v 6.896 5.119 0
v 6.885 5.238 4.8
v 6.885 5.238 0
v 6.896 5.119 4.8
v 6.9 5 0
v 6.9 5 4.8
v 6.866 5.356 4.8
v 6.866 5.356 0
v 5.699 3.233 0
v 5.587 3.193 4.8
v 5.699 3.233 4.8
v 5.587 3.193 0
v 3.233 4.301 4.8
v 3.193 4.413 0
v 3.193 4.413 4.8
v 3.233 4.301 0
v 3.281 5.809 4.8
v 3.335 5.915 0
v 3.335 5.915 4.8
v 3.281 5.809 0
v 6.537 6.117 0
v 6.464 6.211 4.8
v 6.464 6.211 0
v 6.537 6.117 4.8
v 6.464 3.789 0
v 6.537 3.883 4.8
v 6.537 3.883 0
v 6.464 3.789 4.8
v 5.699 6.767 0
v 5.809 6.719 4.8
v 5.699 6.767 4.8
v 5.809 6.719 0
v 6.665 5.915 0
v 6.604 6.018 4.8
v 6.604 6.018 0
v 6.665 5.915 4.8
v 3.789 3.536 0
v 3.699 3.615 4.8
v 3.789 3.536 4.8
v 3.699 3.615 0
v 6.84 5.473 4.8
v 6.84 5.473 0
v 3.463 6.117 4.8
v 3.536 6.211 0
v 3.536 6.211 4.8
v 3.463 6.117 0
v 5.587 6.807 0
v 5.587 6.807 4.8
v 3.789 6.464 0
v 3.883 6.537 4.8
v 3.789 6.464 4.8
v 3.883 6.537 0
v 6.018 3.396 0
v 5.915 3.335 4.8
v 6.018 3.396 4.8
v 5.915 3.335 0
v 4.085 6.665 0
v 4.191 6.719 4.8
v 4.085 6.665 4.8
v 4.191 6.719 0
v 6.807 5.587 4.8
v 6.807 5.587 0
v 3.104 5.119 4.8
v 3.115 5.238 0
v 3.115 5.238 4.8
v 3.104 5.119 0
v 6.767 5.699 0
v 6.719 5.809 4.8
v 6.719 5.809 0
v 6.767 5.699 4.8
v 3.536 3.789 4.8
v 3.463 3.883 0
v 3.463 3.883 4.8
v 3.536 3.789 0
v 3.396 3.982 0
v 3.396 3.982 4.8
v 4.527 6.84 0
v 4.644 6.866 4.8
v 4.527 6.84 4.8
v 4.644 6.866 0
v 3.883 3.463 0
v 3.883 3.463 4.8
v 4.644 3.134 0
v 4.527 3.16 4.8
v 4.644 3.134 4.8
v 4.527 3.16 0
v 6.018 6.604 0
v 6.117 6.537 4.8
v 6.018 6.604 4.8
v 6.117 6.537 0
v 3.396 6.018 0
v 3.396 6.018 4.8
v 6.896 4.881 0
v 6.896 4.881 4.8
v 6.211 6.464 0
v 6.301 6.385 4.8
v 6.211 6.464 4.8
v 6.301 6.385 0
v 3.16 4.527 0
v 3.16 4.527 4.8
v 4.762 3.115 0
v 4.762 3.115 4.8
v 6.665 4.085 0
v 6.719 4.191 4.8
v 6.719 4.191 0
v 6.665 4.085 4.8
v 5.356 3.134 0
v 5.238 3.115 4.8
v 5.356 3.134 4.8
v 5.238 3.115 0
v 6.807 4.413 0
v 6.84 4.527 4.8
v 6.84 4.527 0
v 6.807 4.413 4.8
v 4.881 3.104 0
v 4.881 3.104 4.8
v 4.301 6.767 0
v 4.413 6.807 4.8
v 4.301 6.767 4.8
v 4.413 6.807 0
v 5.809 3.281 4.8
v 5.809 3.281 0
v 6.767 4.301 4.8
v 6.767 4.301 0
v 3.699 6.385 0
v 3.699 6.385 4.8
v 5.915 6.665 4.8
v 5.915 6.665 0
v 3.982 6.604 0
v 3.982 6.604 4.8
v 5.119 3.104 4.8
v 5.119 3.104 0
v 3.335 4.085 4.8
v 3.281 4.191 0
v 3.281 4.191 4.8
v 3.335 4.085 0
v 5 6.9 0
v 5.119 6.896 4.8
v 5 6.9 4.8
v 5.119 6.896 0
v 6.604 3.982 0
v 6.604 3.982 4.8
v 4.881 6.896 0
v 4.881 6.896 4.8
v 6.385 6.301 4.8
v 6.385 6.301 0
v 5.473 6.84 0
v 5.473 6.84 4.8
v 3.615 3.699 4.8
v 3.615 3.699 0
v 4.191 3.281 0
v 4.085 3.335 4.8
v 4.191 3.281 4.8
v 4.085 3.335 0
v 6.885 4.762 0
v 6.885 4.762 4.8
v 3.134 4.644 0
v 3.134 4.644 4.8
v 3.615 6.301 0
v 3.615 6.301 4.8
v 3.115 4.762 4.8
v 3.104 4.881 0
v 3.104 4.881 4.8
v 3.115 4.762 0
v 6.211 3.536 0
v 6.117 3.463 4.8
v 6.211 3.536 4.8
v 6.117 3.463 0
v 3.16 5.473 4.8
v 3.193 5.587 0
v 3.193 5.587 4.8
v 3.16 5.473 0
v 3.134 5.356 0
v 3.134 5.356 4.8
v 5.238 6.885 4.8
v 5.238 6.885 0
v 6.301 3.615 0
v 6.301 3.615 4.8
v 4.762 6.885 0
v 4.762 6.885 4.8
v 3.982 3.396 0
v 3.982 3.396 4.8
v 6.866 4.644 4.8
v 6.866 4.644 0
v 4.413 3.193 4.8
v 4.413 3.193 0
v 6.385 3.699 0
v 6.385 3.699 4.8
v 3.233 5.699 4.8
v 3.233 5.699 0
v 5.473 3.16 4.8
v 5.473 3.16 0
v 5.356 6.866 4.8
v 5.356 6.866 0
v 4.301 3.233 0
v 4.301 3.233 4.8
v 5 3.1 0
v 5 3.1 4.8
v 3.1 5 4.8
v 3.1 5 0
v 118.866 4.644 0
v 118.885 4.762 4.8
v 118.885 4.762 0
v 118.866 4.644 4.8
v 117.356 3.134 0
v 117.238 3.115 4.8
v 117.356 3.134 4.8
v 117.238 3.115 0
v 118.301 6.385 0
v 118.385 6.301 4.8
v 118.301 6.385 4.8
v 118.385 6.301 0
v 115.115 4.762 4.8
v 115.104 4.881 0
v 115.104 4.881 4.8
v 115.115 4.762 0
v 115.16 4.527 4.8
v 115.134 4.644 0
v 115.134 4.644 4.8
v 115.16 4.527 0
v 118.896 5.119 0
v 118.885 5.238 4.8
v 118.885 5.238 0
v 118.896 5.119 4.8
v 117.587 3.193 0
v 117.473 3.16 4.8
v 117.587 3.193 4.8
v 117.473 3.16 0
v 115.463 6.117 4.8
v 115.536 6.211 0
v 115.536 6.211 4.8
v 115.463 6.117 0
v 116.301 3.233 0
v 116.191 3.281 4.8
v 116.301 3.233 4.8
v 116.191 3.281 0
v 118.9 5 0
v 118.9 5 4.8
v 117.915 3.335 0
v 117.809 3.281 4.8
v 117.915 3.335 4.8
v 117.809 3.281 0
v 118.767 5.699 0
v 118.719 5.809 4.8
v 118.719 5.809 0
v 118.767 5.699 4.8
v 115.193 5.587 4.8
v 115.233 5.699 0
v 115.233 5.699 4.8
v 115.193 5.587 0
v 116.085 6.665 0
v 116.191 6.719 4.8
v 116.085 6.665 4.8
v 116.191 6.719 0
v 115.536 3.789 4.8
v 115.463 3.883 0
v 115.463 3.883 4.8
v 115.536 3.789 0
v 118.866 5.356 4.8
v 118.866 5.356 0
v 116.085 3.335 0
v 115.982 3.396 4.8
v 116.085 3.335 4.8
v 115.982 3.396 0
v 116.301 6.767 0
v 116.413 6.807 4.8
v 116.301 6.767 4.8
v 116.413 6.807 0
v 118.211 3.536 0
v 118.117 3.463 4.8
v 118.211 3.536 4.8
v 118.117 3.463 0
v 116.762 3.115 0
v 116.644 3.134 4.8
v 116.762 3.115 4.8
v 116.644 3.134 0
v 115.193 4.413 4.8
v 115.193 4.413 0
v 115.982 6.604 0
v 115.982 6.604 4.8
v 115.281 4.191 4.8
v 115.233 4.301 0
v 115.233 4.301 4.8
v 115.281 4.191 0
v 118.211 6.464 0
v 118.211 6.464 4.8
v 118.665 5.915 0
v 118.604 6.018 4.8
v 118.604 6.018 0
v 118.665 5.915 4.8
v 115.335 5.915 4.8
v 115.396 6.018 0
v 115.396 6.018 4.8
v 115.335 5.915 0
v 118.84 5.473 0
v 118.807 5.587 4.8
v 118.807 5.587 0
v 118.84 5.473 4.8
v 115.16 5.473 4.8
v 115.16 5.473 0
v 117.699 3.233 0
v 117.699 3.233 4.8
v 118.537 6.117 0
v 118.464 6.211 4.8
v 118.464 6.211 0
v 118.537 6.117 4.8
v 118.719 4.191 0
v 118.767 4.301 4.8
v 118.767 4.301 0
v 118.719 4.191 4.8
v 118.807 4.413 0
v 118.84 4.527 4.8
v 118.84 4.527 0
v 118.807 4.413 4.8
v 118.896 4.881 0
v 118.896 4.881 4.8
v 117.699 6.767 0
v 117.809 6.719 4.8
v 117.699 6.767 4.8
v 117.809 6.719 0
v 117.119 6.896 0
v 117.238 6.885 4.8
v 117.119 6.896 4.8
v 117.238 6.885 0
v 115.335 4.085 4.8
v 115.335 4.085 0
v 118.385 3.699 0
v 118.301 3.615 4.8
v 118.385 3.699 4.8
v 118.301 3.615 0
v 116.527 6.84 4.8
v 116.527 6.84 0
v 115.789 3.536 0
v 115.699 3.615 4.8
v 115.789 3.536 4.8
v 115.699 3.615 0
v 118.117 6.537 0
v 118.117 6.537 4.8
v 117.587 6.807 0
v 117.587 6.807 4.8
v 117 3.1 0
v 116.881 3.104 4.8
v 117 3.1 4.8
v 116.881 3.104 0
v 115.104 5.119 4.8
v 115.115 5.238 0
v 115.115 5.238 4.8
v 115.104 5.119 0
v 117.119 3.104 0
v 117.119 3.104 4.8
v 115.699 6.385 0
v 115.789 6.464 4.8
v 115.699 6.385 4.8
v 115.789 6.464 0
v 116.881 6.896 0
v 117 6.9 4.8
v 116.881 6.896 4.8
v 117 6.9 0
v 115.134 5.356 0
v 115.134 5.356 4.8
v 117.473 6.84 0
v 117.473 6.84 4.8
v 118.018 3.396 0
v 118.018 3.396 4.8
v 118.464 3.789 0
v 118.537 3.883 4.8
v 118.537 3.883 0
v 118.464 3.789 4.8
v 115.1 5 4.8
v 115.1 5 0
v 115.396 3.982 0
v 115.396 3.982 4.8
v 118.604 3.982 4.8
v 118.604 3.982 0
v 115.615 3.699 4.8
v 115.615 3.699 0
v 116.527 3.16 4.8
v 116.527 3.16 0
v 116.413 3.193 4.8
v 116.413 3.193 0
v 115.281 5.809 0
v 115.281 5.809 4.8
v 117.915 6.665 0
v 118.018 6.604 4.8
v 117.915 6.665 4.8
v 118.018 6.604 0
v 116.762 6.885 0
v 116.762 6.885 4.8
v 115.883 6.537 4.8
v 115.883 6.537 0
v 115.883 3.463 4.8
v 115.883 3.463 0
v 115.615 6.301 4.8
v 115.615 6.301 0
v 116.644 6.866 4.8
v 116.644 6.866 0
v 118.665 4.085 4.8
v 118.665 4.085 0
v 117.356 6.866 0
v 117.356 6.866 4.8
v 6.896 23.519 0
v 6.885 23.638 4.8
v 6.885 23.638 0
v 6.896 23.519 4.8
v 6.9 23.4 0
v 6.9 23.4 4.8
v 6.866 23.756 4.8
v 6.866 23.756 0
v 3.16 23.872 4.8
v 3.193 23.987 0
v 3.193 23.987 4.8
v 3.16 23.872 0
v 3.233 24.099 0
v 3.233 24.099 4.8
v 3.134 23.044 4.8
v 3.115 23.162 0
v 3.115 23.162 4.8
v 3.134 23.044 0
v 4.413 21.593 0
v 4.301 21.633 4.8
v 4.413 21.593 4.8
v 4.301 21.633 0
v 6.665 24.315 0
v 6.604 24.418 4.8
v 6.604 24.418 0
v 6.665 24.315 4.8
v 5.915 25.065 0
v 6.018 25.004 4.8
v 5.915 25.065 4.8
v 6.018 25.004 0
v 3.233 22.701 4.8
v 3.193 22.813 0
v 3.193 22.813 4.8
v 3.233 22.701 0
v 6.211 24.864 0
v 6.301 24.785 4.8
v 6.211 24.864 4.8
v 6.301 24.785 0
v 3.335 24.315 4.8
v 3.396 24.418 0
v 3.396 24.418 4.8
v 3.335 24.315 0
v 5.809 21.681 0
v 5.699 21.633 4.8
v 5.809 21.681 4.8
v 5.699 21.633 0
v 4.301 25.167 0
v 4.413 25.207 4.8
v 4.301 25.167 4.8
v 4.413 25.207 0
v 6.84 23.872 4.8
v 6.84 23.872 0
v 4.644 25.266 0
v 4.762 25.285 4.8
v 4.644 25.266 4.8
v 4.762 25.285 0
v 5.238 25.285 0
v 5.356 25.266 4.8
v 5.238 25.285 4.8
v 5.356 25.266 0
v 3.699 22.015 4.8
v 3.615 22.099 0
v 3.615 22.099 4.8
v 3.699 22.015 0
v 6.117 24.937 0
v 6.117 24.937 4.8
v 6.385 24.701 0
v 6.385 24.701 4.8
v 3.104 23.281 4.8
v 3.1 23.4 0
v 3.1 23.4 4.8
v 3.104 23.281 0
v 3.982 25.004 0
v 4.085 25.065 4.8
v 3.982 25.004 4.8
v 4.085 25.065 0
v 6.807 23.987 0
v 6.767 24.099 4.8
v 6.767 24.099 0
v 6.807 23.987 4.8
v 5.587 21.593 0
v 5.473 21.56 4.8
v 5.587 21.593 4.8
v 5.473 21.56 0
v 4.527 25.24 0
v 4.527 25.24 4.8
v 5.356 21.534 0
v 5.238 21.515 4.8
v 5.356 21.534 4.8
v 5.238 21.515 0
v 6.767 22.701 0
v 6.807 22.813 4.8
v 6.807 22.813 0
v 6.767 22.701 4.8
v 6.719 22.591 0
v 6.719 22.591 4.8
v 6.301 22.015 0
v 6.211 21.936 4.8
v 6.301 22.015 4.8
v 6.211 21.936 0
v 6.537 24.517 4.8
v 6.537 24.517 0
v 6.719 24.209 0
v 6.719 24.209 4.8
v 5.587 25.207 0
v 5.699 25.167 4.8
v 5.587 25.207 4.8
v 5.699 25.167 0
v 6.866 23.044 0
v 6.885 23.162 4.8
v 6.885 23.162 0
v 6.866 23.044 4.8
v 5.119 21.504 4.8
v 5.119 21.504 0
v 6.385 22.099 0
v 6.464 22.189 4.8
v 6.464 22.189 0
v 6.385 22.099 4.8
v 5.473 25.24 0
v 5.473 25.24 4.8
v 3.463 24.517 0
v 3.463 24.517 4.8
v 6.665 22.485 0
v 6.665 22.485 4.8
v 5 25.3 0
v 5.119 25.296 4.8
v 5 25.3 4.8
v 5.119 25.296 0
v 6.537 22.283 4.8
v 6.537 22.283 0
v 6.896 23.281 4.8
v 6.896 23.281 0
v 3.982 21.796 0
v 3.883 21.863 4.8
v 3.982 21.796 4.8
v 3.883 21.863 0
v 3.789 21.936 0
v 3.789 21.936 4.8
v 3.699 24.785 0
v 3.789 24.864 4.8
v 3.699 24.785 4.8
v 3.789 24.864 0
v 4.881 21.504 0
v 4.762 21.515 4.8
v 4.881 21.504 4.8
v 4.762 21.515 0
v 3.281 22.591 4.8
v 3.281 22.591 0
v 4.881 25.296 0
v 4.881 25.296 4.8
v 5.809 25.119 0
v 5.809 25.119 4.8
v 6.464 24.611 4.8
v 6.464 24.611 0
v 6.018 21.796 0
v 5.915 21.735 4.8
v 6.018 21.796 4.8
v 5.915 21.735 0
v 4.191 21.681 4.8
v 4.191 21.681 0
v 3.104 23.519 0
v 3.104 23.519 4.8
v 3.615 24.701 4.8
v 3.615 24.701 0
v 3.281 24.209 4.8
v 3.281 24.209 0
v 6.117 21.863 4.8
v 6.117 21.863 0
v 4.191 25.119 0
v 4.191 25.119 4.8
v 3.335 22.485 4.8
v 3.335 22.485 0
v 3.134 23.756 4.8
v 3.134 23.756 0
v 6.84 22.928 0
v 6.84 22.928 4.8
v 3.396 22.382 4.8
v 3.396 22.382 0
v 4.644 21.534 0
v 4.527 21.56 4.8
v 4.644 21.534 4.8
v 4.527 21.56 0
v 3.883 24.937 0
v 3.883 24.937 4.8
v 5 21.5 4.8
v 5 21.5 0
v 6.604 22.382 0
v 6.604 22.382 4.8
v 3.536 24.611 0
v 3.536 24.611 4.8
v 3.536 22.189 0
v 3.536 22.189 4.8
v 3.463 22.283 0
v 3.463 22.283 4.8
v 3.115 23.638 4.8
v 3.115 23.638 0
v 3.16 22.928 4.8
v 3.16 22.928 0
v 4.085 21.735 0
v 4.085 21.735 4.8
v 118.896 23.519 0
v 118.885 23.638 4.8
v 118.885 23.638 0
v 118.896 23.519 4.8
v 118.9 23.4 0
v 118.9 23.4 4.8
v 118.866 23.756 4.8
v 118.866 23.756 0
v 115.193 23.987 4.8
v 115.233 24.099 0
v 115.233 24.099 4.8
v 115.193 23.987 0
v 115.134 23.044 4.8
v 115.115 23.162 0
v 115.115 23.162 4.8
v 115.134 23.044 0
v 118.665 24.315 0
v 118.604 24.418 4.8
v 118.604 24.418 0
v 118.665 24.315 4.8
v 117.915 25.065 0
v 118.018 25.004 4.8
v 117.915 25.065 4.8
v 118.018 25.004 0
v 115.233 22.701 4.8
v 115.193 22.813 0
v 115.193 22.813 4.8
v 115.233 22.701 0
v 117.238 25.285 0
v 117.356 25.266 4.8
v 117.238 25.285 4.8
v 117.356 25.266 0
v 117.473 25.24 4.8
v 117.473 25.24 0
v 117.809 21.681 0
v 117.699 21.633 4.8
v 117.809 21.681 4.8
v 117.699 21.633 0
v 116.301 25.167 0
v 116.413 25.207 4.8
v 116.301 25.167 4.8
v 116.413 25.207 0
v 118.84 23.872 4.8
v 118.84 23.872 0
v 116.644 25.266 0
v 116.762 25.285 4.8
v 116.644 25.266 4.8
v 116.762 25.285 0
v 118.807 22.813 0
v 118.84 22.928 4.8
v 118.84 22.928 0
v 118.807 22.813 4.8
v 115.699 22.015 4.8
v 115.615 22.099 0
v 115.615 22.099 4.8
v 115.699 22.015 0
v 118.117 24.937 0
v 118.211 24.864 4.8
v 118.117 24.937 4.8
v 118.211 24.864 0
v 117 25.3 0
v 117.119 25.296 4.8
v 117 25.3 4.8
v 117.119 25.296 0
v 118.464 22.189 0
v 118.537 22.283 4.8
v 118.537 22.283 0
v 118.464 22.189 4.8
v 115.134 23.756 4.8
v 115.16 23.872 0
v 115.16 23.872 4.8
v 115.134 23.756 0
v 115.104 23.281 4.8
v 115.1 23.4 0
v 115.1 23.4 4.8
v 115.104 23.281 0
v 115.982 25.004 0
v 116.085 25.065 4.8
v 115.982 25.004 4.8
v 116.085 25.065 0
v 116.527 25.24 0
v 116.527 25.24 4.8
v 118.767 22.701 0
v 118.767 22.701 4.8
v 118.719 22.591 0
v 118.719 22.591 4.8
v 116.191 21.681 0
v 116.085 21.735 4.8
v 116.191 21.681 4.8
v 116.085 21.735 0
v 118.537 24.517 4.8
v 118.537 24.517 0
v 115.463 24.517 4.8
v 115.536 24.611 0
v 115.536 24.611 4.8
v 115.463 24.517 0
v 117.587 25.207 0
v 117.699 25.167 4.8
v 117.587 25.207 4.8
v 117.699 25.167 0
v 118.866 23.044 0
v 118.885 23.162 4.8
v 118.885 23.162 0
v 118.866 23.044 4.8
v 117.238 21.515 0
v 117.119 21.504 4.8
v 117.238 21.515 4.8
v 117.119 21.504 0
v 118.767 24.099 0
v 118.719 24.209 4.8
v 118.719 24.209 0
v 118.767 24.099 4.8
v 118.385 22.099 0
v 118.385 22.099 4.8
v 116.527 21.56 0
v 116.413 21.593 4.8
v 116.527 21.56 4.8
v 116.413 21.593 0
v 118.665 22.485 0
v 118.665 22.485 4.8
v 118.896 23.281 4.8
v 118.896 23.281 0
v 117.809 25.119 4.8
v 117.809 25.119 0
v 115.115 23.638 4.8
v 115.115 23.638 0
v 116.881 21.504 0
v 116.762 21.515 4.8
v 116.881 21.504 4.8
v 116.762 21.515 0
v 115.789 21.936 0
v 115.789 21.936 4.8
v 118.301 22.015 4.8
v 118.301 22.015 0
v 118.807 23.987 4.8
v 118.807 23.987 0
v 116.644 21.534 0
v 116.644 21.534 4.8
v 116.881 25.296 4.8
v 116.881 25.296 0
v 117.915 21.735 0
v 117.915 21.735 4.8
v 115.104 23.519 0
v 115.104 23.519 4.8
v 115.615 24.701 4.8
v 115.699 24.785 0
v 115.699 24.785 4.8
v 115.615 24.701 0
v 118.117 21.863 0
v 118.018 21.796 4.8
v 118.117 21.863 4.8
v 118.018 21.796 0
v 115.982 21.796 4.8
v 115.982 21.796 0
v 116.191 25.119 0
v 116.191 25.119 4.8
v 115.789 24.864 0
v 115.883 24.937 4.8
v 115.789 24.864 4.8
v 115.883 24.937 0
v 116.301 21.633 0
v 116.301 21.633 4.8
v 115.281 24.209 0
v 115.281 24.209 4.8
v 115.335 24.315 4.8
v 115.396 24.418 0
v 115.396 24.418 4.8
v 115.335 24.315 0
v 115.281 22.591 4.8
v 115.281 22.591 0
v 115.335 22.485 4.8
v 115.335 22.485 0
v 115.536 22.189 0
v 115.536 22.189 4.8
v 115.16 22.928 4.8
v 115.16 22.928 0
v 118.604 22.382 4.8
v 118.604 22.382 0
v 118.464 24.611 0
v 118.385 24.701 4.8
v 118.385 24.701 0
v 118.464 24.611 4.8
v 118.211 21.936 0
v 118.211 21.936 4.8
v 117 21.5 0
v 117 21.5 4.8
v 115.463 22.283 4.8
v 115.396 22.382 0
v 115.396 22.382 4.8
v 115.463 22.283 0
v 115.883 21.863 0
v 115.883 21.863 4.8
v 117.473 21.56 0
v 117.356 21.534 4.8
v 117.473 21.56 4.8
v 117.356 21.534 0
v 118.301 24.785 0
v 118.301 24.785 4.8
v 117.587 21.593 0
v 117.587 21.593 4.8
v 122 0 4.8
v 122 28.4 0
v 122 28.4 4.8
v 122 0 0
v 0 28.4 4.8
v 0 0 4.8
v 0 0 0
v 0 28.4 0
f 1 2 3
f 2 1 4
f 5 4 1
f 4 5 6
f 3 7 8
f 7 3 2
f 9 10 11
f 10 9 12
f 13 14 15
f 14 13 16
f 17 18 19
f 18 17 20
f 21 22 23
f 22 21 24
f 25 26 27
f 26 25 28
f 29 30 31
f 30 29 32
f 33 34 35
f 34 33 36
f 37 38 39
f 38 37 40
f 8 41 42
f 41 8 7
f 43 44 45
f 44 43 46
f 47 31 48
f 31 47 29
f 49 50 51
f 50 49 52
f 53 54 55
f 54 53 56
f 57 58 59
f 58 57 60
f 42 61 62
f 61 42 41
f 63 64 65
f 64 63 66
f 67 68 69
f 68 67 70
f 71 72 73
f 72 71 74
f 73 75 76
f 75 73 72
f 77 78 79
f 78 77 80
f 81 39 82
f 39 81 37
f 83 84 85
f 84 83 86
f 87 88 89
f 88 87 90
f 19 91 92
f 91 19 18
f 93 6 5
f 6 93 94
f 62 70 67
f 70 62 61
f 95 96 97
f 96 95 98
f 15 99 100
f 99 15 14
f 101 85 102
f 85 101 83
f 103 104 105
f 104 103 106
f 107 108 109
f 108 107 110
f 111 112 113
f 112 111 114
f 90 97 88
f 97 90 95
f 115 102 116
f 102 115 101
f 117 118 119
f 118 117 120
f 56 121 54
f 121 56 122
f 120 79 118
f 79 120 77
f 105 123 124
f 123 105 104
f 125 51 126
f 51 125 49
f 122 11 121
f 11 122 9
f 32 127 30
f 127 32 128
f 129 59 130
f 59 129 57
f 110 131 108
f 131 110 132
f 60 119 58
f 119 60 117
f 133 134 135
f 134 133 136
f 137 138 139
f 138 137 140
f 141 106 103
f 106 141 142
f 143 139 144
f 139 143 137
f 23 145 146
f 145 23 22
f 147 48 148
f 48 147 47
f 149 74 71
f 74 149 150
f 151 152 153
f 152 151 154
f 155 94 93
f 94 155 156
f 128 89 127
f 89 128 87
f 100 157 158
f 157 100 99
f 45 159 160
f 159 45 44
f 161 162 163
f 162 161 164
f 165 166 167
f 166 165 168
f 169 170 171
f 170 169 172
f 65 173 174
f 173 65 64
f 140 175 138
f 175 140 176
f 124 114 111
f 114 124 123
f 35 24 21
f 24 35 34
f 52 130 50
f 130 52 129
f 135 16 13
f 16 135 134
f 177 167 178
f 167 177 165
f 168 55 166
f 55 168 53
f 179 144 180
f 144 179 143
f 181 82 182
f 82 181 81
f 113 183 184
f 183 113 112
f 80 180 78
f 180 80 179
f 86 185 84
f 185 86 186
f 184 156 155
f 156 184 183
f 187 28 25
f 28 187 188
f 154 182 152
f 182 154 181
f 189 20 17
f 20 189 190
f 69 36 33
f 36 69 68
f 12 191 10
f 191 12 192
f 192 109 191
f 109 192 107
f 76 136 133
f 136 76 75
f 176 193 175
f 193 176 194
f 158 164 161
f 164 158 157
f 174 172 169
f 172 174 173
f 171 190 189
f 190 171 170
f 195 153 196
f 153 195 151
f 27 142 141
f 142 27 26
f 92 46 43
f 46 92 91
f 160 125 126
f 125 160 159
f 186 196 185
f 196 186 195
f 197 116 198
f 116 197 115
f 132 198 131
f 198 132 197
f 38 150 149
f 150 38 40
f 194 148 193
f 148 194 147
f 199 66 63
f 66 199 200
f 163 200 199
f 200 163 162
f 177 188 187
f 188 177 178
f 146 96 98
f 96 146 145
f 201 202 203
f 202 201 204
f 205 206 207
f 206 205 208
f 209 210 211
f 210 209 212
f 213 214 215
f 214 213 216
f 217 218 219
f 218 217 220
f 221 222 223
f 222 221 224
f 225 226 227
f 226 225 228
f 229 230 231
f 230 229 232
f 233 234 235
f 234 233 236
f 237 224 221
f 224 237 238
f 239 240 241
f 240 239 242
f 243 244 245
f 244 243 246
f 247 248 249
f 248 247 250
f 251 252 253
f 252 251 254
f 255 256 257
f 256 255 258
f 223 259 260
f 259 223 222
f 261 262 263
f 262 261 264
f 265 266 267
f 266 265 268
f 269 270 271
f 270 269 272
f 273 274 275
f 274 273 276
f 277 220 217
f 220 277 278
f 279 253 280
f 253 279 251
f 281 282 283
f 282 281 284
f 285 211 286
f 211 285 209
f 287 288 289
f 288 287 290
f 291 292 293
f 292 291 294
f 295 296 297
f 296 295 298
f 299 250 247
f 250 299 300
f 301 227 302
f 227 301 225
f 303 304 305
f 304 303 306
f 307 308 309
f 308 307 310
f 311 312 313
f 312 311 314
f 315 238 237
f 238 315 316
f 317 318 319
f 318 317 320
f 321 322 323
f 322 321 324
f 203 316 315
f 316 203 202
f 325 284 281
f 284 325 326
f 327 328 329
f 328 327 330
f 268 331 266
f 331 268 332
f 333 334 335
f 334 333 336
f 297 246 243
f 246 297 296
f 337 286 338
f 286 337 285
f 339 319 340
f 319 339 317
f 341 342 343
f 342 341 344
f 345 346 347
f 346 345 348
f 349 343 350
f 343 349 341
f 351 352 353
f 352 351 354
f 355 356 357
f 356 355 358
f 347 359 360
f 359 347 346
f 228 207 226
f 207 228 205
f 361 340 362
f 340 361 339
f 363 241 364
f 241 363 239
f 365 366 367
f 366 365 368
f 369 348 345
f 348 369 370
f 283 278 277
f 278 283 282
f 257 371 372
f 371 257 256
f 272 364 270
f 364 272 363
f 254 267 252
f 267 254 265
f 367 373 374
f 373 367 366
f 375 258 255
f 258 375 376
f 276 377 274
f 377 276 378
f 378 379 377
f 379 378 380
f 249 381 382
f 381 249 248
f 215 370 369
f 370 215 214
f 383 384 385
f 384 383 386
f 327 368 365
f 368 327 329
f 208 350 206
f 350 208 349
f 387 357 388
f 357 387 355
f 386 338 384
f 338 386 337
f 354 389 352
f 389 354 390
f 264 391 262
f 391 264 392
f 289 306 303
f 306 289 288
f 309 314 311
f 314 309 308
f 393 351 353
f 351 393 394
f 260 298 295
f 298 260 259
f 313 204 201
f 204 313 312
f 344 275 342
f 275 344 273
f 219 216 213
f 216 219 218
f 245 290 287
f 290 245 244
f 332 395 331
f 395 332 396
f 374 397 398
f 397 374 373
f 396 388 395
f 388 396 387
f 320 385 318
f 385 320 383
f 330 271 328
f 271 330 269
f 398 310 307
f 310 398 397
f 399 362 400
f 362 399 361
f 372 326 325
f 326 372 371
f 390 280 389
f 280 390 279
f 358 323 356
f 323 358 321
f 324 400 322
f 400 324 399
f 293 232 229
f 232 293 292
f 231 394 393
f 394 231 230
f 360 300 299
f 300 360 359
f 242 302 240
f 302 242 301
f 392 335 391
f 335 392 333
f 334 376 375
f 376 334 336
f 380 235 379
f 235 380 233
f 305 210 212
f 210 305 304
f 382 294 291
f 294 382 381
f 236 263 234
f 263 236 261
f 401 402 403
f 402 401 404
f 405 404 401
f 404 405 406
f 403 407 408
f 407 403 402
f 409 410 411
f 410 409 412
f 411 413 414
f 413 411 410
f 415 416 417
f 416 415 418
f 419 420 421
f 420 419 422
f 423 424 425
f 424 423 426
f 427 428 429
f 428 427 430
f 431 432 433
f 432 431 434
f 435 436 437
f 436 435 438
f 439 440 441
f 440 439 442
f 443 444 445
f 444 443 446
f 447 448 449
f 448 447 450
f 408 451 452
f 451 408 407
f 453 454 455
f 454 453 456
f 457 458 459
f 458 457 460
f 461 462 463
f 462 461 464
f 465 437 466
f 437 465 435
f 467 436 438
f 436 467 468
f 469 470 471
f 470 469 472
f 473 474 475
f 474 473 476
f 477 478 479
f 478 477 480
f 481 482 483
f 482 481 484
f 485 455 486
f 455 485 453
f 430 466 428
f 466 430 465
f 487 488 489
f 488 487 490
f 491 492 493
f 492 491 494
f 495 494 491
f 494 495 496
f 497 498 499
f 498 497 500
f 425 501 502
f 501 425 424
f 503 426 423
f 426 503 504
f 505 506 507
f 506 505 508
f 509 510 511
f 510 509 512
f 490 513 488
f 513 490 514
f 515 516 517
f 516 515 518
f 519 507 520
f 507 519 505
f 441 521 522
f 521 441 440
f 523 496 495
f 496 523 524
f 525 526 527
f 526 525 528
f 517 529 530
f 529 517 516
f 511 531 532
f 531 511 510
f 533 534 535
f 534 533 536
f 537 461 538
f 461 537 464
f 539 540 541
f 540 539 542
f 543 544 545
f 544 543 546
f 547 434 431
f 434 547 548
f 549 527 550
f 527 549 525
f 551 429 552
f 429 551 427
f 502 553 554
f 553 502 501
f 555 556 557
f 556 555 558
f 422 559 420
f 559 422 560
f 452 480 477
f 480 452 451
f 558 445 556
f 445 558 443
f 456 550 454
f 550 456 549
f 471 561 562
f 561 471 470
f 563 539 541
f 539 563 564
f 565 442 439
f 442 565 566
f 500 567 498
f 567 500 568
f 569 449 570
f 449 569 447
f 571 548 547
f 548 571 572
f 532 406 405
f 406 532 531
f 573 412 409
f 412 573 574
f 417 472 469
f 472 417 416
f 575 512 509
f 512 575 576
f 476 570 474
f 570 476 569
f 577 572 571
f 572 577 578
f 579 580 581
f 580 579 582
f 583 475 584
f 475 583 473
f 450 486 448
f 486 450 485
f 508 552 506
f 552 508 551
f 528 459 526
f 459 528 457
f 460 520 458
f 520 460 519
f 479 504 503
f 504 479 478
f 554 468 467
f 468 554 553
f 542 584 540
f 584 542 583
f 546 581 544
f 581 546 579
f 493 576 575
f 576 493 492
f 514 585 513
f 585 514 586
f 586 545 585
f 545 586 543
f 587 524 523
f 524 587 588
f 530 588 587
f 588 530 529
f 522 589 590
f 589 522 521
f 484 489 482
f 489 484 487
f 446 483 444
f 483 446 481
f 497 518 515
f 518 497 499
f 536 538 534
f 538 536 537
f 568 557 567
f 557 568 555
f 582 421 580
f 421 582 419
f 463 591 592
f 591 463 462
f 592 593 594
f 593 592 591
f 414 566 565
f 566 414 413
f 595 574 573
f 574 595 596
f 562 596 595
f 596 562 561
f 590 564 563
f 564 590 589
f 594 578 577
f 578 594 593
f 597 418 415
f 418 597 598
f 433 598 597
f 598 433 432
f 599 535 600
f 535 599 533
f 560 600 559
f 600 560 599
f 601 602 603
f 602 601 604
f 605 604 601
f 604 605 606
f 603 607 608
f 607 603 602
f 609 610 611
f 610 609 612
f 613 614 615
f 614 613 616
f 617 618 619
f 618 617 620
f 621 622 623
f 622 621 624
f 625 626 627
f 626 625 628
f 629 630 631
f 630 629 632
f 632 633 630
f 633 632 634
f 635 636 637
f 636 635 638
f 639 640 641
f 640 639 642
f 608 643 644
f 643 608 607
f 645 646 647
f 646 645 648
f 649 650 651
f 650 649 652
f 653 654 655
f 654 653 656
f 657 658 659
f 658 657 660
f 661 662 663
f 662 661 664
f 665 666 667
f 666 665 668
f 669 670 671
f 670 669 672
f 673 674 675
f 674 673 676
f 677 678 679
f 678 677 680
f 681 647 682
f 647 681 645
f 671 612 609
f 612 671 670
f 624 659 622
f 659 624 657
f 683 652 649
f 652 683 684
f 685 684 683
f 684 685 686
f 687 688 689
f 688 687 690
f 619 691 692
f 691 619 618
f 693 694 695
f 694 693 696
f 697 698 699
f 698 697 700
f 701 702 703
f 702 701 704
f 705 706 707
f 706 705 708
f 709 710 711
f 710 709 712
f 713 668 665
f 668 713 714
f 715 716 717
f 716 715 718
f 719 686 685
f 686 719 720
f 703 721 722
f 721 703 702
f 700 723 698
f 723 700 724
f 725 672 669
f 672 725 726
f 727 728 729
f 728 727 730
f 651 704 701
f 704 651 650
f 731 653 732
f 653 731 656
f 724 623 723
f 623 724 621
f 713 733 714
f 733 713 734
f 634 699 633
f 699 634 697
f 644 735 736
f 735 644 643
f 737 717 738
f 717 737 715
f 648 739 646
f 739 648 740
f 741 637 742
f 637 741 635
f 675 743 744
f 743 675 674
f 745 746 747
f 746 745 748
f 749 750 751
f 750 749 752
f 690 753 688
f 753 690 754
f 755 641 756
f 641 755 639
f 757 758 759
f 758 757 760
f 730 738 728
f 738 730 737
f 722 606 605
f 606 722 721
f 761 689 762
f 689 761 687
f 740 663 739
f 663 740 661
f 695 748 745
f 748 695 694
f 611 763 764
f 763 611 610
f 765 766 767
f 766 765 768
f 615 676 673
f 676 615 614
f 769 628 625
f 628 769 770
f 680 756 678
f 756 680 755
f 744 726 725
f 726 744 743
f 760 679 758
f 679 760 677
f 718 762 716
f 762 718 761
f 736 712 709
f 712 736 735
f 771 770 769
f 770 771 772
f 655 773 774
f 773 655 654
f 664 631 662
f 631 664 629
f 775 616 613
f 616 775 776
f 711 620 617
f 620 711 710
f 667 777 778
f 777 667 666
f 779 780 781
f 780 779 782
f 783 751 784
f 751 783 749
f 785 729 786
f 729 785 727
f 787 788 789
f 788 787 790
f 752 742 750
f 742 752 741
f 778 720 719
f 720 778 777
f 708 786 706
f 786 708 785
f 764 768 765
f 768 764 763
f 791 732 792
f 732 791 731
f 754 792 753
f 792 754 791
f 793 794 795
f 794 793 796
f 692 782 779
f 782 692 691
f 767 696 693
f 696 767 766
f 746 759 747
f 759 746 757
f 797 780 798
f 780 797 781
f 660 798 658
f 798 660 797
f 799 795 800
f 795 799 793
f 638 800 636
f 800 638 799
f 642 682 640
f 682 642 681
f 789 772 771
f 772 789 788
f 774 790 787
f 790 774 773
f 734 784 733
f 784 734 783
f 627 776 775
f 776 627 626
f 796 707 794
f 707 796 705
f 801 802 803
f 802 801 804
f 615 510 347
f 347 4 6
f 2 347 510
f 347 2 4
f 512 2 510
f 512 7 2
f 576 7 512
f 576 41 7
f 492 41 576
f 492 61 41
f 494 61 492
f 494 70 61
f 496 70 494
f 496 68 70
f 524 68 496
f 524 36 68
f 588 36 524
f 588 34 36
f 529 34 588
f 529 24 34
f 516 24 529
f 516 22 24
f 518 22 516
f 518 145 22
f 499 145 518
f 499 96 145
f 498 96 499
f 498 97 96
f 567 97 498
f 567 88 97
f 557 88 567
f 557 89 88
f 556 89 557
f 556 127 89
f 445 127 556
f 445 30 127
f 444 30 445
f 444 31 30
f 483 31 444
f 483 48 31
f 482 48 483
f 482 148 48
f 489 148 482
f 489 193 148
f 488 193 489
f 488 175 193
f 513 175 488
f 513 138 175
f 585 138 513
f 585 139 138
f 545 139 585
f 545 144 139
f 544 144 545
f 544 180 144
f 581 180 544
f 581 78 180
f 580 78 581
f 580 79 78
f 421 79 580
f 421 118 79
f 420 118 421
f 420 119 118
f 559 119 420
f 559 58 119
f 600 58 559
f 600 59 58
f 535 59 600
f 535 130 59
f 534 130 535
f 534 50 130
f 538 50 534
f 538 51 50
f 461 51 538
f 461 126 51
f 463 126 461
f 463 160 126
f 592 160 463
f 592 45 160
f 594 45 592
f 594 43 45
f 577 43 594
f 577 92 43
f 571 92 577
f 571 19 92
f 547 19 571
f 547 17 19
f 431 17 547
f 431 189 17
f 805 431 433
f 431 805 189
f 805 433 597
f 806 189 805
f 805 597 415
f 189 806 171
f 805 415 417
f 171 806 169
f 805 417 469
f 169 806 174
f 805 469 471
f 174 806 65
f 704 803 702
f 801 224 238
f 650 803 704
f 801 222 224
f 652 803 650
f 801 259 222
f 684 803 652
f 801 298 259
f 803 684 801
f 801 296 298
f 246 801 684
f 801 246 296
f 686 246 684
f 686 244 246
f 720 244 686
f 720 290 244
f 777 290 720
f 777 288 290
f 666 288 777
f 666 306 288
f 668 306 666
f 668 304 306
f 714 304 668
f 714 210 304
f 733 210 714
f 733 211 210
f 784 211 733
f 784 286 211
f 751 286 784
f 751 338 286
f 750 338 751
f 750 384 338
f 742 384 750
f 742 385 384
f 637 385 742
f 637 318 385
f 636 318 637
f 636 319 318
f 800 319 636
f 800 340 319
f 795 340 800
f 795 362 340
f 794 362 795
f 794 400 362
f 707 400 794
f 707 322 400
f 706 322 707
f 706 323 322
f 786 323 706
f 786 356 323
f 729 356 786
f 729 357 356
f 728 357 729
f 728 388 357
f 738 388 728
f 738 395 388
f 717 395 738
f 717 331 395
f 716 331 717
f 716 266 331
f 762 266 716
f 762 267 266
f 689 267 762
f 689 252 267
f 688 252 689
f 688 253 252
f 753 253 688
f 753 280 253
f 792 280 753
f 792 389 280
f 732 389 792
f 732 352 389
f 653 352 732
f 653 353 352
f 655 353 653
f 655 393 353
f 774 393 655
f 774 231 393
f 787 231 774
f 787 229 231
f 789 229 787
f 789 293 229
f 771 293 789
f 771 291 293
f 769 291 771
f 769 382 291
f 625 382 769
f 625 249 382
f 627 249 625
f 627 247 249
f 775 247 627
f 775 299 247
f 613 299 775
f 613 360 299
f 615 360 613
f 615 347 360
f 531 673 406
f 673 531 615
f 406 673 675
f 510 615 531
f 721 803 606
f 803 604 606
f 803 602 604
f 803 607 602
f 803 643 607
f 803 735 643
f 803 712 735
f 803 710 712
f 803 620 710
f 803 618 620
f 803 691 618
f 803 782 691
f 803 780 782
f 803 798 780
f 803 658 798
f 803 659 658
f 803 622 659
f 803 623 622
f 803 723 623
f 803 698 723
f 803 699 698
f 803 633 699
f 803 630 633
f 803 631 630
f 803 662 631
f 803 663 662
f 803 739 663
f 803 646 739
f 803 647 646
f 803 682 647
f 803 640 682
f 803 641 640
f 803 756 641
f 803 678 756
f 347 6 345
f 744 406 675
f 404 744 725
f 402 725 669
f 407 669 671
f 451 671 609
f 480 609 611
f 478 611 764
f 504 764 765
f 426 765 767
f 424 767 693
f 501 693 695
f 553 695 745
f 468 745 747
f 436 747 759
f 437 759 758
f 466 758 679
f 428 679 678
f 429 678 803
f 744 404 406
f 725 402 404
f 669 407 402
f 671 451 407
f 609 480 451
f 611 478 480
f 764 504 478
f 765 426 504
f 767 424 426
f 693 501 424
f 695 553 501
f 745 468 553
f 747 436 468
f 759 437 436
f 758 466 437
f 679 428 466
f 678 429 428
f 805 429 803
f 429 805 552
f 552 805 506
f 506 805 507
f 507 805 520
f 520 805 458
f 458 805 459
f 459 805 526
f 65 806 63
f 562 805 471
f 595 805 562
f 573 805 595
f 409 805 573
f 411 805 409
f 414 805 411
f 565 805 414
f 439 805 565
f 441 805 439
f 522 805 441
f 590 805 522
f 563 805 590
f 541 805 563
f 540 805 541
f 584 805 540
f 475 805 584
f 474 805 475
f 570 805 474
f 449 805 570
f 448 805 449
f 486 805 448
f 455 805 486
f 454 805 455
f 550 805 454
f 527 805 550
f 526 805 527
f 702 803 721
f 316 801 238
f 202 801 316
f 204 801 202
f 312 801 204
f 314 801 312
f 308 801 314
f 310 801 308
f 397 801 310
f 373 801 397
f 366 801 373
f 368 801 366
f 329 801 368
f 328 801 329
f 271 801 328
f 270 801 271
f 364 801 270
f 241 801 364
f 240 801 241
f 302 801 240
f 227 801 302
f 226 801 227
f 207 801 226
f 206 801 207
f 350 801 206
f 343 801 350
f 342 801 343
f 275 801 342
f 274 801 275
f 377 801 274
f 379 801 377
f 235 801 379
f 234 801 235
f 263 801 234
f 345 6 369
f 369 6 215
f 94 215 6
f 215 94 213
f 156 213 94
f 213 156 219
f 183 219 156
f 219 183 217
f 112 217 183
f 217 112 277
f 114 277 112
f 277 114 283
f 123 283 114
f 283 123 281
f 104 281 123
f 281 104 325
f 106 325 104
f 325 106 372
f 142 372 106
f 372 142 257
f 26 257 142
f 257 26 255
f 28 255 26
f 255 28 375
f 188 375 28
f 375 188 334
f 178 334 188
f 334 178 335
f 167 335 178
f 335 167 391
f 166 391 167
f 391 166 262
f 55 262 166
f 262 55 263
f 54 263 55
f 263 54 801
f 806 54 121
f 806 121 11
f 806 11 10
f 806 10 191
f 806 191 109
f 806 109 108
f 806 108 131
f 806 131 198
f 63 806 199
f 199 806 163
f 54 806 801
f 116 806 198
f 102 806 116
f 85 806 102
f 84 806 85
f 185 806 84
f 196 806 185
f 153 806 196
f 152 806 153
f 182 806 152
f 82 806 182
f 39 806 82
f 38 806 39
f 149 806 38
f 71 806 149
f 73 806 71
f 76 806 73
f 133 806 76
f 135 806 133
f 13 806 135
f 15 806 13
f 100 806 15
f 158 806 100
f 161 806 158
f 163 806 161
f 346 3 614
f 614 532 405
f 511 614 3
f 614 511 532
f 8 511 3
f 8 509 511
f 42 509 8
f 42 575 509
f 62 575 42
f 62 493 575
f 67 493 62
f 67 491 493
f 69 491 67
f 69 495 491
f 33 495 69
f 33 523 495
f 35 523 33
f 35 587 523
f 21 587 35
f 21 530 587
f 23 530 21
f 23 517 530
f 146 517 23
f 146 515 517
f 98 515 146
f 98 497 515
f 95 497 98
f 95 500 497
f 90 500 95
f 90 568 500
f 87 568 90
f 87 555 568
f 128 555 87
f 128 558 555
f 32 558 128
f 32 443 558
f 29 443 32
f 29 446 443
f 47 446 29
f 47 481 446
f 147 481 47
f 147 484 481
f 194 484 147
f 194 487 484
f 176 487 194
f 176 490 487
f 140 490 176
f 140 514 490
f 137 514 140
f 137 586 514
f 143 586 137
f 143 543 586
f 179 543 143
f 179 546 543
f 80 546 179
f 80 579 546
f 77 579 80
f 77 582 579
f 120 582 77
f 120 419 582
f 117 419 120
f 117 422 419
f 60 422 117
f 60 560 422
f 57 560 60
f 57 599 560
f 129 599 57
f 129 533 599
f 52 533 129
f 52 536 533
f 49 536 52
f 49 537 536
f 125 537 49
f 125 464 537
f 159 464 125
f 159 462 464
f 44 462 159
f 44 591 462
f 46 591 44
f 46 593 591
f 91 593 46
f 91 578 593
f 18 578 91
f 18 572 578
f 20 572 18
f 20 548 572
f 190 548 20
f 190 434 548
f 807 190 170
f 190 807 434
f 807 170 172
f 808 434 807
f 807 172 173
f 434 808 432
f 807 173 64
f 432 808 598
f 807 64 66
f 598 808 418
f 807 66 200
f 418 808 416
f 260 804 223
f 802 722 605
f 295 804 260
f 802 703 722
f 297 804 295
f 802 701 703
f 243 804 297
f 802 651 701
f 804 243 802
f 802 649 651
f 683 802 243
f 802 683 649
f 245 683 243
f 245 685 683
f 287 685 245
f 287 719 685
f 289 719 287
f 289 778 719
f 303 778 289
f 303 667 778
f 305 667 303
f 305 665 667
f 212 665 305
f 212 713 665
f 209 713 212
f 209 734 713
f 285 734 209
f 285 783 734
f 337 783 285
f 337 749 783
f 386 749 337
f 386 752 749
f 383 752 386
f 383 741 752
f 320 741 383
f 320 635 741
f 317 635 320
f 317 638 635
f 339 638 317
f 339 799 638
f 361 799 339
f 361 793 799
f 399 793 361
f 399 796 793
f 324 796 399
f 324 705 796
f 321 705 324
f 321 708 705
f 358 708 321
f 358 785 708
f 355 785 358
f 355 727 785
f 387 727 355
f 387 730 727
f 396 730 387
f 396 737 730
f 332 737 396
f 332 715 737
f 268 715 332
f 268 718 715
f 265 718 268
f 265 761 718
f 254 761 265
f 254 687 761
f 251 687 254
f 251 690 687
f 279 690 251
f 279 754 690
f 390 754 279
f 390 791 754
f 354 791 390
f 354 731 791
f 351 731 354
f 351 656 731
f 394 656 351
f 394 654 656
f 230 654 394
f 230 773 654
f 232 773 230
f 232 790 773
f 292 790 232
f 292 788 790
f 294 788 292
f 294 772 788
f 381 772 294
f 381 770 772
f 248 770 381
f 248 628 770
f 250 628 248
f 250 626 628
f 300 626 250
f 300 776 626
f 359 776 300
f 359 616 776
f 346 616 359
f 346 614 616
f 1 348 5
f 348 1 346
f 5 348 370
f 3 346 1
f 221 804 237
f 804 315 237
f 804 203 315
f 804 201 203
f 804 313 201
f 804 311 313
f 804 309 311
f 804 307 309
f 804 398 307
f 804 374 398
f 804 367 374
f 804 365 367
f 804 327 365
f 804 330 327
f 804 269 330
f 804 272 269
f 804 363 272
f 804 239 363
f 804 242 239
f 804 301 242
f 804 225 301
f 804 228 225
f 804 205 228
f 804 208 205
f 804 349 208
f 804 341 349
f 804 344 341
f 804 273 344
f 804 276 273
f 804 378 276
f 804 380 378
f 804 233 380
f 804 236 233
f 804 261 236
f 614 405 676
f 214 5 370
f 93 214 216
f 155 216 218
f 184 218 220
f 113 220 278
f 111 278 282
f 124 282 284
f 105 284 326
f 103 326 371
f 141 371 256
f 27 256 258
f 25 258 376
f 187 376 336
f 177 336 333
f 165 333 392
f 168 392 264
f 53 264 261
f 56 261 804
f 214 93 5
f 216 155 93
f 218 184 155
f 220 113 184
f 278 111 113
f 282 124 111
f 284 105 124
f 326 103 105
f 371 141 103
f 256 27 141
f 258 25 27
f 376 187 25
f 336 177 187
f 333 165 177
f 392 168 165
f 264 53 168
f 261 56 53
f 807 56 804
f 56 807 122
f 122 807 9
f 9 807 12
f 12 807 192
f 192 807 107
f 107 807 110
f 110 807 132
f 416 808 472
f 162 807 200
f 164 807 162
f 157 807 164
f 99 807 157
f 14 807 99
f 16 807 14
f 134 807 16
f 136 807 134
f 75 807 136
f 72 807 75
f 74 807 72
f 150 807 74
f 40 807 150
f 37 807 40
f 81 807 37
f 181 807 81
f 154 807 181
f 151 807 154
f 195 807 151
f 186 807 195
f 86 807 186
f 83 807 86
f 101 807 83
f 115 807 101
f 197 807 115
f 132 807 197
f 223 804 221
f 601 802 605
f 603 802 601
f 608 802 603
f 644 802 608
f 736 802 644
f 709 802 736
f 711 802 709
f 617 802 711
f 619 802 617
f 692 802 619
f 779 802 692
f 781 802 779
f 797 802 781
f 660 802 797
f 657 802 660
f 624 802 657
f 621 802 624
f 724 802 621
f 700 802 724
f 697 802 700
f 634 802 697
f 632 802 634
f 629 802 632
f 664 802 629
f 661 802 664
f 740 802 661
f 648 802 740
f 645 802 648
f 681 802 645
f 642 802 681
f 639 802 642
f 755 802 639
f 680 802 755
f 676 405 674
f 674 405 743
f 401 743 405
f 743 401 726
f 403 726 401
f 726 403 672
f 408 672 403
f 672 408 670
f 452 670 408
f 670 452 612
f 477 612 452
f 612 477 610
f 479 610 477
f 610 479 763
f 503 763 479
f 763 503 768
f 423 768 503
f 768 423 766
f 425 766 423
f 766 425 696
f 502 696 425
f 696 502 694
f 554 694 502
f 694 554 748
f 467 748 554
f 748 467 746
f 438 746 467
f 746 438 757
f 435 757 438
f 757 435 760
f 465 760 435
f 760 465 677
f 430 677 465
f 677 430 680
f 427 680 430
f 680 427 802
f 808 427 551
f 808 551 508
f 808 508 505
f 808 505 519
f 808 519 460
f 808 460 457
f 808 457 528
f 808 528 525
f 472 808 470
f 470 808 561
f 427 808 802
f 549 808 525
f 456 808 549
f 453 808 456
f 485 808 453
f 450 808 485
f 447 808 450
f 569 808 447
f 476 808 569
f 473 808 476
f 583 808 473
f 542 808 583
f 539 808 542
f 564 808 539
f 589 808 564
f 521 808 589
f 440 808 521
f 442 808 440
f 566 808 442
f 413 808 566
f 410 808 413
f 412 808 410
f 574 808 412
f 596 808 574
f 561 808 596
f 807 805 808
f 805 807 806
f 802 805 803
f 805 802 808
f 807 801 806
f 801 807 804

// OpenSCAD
// file: ../libraries/commons.scad
/**
 * forEachCoord
 * Wrapper to apply child on each element
 */
module forEachCoord(coords_list) {
    for (coords = coords_list)
        translate(
            [
                coords[0] == undef ? 0 : coords[0],
                coords[1] == undef ? 0 : coords[1],
                coords[2] == undef ? 0 : coords[2],
            ]
        )
            children();
}
// file: ../configurations/global.scad
housing_facades_throws_diameter = 3.8;

// external size
case_external_x_size = 90;
case_external_y_size = 140;
case_external_z_size = 38;
case_external_panes_thickness = 4.8;

facade_front_round_edges_radius = 5;
facade_throws_margin = 5;

facade_front_fixation_throws_diameter = housing_facades_throws_diameter;

// facade corners
facade_corners_offset_lenght = 9;
facade_corners_main_x_size = 19;
facade_corners_main_y_size = 19;
facade_corners_main_thickness = 11;
facade_corners_correction_offset_length = 0.2;
facade_corners_correction_offset_thickness = 0.0;
facade_fn = 100;


facade_controller_coords = [
    case_external_x_size / 2,
    case_external_y_size / 2 - 30,
];


// Screen frames
screen_frame_electronic_board_margin = 3;
screen_frame_throw_diameter = 3.5;
screen_frame_piece_z_size = 1.5;
screen_frame_piece_glass_embedding_margin = 1;
screen_frame_piece_glass_embedding_z_depth = 1;
screen_frame_facade_piece_z_size = 1;
screen_frame_fn = 100;

screen_glass_visible_zone_x_margin = 0.7;
screen_glass_visible_zone_y_margin = 0.7;
screen_glass_z_size = 1;

facade_screen_coords = [
    case_external_x_size / 2,
    case_external_y_size / 2 + 28,
];


// Generics
insert_throw_diameter = 4.2;
insert_throw_length = 6 + 2;


// Controller facade
controller_breadboard_x_size_point = 28;
controller_breadboard_y_size_point = 9;

controller_facade_z_size = 2;
controller_facade_button_throw_margin = 1;
controller_facade_small_button_throw_margin = 0.5;
controller_facade_a_b_button_throw_margin = 0.5;

controller_facade_border_rounded_border_1 = 5;
controller_facade_border_rounded_border_2 = 4;

controller_facade_with_border_x_size = 82;
controller_facade_with_border_y_size = 47;

controller_facade_border_throws_margin = 5;
controller_braidboard_throw_margin = 1;

controller_facade_border_fn = 80;


// Cross Button
controller_cross_button_x_y_size = 20;
controller_cross_button_z_size = 4;
controller_cross_button_thickness = 6;
controller_cross_button_round_edges_radius = 1;
controller_cross_button_support_x_y_size = 22;
controller_cross_button_support_z_size = 1;
controller_cross_button_fn = 150;


// A and B Buttons
controller_a_b_button_diameter = 7.5;
controller_a_b_button_z_size = 4;
controller_a_b_button_support_diameter = 9.5;
controller_a_b_button_support_z_size = 1;
controller_a_b_button_fn = 80;


// small Buttons
controller_small_button_diameter = 5.5;
controller_small_button_z_size = 3;
controller_small_button_support_diameter = 7.5;
controller_small_button_support_z_size = 1;
controller_small_button_fn = 80;

// Directional cross
controller_directional_cross_points_coords = [6, 5];
controller_start_button_points_coords = [14, 3];
controller_select_button_points_coords = [18, 3];
controller_menu_button_points_coords = [14, 7];
controller_option_button_points_coords = [18, 7];
controller_a_button_points_coords = [23, 4];
controller_b_button_points_coords = [27, 6];
controller_bolt_throws_list = [
    [2, 2],
    [2, 8],
    [10, 2],
    [10, 8],
    [27, 2],
    [23, 8],
];


// usb charger holder
usb_charger_support_total_x_size = 17.57 + 15;
usb_charger_support_total_y_size = 12;
usb_charger_support_total_z_size = 2;


usb_charger_fixation_support_z_size = 4.5;
usb_charger_encaps_x_size = 17.57 + 1;
usb_charger_encaps_y_size = 27.85 + 1;
usb_charger_encaps_z_size = 1;

usb_charger_facade_x_fixation_spacing = 42;
usb_charger_facade_y_size = 1.36;
usb_charger_facade_z_size = 14;

usb_charger_throw_diameter = 3.5;
usb_charger_facade_holder_z_offset = 3.5; //
usb_charger_fixation_facade_y_margin = 0.5;
usb_charger_throw_offset_y = 4.5;
usb_charger_throw_offset_x = 3.5;
usb_charger_facade_fn = 100;

usb_charger_external_facade_main_throw_margin = 2;
usb_charger_external_facade_main_throw_diameter = housing_facades_throws_diameter;

usb_charger_coords = [
    28, 15
];


facade_top_on_off_button_throw_diameter = 12.8;

facade_top_on_off_button_coords = [
    case_external_x_size / 2 + 18,
    case_external_z_size / 2
];


// Bolt join Piece Mother board
bolt_join_mother_board_internal_diameter = 3.5;
bolt_join_mother_board_external_diameter = 3.5 + (0.4 * 6);
bolt_join_mother_board_height = 3;

// Bolt join Piece GamePadController
bolt_join_game_pad_internal_diameter = 3.5;
bolt_join_game_pad_external_diameter = 3.5 + (0.4 * 6);
bolt_join_game_pad_height = 6.5;

bolt_join_fn = 500;


// Mother board breadboard
mother_board_x_size_point = 25;
mother_board_y_size_point = 32;

mother_board_coords = [
    case_external_x_size / 2 - ((mother_board_x_size_point + 1) * 2.54) / 2,
    44,
    3
];

mother_board_bolt_throws_list = [
    [3, 2],
    [3, 17],
    [23, 2],
    [23, 17],
];


// Speaker
speaker_facade_throw_diameter = 28 + 1;
speaker_facade_z_size = 1.36;
speaker_facade_rounded_radius = 5;
// main file
include <./../configurations/global.scad>
use <./../libraries/commons.scad>

include <./../configurations/global.scad>

/**
 * facadeLeftPiece
 * @name facadeLeftPiece
 * @description Piece can be printed or CNC cutted #3DPrint, #CNC
 * @type piece
 * @parent housingComponent
 * @stl
 */
module facadeLeftPiece(
    x_size = case_external_y_size - (facade_corners_offset_lenght * 2),
    y_size = case_external_z_size - (case_external_panes_thickness * 2),
    z_size = case_external_panes_thickness,
    throws_diameter = housing_facades_throws_diameter,
    throws_margin = facade_throws_margin,
    $fn = facade_fn
) {
    echo(str("facadeLeftPiece ", "x_size: ", x_size, " y_size: ", y_size, " z_size: ", z_size));
    difference() {
        color("BurlyWood")
            cube([x_size, y_size, z_size]);

        translate([0, 0, -z_size / 2])
            forEachCoord([
                [throws_margin, throws_margin],
                [x_size - throws_margin, throws_margin],
                [throws_margin, y_size - throws_margin],
                [x_size - throws_margin, y_size - throws_margin,],
            ])
                cylinder(h = z_size * 2, d = throws_diameter, $fn = $fn);
    }

}


facadeLeftPiece();
